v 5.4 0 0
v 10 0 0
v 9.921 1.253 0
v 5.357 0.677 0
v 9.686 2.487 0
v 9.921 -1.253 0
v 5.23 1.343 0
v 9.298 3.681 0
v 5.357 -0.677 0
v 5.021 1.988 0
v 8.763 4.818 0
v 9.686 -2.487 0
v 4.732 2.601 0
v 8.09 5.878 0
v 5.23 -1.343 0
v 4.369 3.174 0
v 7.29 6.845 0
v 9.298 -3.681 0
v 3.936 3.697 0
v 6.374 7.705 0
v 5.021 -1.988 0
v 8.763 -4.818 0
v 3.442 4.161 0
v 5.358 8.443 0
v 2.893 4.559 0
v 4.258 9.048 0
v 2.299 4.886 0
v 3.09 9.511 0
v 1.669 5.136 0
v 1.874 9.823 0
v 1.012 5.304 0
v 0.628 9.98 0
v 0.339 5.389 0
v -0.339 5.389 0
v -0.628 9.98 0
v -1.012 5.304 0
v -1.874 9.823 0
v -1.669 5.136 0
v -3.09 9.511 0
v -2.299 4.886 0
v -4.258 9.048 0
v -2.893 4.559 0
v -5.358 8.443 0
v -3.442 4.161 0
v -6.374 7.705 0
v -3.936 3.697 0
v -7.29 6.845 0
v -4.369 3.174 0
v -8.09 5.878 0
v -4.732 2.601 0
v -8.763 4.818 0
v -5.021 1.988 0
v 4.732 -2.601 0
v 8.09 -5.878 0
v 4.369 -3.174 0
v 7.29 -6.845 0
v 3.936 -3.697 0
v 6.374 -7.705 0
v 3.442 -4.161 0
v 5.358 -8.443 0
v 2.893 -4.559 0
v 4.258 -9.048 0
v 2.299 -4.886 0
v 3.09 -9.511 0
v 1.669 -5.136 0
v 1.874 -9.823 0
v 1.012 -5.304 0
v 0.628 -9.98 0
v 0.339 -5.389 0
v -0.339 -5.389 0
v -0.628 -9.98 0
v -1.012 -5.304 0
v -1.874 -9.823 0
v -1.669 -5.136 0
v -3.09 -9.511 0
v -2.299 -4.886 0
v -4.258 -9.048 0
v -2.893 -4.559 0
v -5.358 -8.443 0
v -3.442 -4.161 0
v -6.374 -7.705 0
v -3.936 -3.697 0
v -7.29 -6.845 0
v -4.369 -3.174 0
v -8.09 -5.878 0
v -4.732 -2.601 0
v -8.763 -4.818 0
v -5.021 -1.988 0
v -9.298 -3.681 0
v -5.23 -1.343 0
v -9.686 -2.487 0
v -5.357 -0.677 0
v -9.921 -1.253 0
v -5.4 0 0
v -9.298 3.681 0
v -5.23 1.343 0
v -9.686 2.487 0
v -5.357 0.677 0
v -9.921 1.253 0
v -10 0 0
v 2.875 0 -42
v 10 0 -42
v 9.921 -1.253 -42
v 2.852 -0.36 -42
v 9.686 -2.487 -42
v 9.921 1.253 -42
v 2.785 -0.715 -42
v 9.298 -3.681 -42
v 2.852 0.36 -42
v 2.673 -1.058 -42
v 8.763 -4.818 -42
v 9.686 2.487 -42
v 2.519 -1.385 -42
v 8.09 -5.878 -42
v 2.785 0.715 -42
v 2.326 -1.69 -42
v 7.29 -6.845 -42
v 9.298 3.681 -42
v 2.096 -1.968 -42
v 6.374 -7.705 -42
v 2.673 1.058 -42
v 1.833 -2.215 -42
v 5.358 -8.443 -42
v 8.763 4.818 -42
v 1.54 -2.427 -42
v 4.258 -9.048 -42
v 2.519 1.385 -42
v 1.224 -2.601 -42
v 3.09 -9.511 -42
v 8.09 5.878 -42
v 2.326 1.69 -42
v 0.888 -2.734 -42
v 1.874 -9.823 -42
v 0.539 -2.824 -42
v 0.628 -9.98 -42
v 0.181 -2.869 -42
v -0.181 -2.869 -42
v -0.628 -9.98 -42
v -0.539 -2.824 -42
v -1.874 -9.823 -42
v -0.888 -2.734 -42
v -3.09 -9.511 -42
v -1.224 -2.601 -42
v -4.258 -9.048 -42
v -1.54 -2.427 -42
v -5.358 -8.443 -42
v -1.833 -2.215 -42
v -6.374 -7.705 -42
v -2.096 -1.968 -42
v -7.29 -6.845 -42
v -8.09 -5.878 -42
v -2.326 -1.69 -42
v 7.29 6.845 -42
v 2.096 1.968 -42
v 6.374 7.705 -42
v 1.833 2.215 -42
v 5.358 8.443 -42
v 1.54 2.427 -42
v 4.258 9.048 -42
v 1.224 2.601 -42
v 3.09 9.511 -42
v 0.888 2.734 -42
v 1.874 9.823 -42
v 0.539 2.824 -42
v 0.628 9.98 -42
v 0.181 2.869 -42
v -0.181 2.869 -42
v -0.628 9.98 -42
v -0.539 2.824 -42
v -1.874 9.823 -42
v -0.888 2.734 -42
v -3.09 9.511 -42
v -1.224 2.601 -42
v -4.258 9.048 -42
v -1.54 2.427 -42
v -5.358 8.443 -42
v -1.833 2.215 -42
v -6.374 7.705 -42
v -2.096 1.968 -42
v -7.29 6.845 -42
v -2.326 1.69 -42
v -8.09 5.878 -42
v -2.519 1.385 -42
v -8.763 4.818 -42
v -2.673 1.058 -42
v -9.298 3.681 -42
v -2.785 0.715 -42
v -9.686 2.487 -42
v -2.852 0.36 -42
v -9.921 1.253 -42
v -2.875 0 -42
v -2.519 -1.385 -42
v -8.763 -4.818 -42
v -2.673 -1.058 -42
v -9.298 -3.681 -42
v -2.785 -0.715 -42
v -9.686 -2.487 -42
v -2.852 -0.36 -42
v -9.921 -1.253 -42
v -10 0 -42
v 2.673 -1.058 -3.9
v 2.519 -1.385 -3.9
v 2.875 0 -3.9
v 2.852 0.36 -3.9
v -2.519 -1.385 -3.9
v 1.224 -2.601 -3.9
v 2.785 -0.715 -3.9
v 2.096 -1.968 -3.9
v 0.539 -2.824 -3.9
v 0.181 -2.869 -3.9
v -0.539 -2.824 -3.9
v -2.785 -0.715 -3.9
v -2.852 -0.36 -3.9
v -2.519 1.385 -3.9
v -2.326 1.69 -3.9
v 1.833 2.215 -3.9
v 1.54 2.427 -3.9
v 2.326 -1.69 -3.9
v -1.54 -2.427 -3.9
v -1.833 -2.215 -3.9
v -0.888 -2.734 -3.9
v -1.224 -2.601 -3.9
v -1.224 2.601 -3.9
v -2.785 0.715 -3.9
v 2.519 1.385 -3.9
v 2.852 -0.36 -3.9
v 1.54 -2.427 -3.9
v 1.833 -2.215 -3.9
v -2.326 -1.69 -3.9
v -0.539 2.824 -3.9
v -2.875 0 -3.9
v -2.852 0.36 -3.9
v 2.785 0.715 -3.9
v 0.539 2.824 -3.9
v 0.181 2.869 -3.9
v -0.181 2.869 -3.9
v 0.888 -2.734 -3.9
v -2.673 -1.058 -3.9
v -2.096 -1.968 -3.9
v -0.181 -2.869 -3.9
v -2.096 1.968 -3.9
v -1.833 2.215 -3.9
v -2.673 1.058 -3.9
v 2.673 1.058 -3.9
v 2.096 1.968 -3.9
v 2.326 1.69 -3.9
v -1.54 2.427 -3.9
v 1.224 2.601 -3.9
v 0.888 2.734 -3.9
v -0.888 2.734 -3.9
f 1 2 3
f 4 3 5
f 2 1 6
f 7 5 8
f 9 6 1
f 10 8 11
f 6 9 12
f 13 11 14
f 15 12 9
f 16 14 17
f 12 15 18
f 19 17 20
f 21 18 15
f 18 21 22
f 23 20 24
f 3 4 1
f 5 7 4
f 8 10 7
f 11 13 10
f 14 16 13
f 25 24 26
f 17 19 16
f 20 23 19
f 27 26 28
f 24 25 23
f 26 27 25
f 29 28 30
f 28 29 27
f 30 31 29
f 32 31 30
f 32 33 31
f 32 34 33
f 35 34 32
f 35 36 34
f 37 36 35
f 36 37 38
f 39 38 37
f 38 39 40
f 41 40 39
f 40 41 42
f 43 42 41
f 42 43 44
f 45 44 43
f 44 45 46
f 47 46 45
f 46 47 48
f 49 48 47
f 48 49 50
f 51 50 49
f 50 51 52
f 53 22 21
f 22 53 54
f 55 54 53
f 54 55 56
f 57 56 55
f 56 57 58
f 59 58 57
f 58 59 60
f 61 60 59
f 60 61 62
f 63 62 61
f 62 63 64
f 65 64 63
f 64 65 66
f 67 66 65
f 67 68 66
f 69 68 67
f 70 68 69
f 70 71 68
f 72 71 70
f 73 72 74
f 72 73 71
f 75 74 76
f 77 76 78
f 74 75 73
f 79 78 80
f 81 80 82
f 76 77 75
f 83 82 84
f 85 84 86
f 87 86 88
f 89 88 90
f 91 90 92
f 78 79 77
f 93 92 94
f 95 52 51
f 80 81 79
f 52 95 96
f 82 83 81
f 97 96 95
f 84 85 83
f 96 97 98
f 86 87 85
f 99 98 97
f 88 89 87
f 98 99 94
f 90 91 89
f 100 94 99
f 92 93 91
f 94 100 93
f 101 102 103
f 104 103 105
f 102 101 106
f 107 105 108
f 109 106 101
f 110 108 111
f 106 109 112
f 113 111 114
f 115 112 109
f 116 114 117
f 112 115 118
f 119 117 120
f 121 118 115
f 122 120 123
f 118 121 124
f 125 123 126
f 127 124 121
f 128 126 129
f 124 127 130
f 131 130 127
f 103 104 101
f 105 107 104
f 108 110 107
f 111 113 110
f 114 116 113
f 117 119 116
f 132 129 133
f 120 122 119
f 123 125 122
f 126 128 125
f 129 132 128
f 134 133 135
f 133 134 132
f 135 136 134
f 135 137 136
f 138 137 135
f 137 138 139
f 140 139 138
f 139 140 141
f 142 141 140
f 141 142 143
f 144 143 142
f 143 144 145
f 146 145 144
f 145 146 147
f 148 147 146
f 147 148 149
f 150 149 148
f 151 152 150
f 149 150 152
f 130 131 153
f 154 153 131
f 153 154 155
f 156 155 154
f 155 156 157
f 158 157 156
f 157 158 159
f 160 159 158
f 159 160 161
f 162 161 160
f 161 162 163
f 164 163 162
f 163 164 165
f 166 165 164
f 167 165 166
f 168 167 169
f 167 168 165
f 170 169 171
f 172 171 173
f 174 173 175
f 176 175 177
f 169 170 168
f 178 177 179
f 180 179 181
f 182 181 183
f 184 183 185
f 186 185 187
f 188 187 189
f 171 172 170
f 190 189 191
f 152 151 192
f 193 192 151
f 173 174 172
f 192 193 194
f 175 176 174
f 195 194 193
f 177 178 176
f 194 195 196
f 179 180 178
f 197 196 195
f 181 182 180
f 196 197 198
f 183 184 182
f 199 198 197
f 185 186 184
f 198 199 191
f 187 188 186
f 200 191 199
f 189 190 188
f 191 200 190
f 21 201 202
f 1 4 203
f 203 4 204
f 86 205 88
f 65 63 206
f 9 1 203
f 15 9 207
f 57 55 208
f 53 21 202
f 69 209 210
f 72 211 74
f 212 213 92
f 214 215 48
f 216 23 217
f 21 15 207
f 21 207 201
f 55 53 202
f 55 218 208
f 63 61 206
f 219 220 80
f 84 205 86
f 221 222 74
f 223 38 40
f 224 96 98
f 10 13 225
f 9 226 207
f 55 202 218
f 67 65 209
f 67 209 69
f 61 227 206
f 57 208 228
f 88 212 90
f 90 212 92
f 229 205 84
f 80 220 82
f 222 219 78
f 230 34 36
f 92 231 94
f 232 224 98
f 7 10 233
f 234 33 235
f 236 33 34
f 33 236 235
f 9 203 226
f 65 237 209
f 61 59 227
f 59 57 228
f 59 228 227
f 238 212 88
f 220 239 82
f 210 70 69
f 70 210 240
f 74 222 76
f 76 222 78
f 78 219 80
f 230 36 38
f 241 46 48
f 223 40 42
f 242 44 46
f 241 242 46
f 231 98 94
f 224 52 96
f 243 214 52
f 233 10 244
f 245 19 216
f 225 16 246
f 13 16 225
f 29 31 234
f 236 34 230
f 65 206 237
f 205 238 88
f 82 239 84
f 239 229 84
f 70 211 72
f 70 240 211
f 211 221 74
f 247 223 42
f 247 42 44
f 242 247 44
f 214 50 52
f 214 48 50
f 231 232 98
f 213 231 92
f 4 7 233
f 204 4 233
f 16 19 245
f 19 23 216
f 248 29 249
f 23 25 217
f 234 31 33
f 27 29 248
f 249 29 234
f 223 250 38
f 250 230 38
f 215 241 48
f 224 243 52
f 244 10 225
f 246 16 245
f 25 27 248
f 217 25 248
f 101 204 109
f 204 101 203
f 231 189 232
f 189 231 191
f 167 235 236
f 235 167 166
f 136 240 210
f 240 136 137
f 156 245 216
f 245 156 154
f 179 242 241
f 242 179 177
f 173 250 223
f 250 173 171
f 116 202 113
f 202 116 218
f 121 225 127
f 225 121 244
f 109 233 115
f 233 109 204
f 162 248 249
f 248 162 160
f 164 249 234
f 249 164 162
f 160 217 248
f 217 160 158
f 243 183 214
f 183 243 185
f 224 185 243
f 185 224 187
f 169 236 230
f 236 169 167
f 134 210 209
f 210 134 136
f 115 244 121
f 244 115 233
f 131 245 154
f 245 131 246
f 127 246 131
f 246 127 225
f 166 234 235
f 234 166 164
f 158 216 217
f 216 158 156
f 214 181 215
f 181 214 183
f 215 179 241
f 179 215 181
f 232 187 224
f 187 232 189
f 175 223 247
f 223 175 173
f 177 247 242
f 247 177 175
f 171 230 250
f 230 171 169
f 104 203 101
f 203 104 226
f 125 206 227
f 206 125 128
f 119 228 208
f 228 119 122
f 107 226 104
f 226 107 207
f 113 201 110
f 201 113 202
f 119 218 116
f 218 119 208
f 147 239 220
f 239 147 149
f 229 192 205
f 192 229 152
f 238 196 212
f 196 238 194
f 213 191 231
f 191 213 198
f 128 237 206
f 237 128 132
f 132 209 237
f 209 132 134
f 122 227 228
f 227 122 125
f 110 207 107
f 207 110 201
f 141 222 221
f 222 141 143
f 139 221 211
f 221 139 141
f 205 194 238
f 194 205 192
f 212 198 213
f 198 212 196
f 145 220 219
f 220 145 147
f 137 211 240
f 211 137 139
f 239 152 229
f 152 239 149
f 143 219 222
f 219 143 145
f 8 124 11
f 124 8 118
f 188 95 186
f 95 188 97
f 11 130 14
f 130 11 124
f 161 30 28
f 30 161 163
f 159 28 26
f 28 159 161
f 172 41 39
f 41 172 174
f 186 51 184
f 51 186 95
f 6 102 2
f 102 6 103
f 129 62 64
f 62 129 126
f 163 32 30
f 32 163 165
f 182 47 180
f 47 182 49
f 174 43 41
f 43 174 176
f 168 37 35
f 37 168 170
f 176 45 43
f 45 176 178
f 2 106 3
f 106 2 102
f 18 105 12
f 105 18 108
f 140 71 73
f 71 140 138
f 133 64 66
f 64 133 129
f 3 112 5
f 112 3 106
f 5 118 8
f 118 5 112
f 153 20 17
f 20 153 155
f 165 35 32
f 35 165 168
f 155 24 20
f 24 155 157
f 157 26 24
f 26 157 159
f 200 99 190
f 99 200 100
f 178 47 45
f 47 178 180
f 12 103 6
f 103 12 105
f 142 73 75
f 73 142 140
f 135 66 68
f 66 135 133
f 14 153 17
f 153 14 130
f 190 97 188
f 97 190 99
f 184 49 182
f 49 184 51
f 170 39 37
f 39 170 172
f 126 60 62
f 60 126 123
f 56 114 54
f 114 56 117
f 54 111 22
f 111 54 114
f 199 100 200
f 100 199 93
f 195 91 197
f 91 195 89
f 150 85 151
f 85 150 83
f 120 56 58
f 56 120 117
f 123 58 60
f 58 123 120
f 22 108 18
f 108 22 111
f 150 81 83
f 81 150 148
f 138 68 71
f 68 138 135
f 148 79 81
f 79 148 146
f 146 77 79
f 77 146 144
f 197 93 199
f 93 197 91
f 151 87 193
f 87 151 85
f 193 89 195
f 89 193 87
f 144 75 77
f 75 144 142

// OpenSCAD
$fn = 50;


difference() {
	union() {
		translate(v = [0, 0, -42.0000000000]) {
			cylinder(h = 42, r = 10.0000000000);
		}
		cylinder(h = 0, r = 16.0000000000);
	}
	union() {
		translate(v = [0, 0, 0]) {
			rotate(a = [0, 0, 0]) {
				difference() {
					union() {
						#translate(v = [0, 0, -42.0000000000]) {
							cylinder(h = 42, r = 2.6000000000);
						}
						#translate(v = [0, 0, -3.9000000000]) {
							cylinder(h = 3.9000000000, r = 10.0000000000, r1 = 2.8750000000, r2 = 5.4000000000);
						}
						#translate(v = [0, 0, -42.0000000000]) {
							cylinder(h = 42, r = 2.8750000000);
						}
						#translate(v = [0, 0, -42.0000000000]) {
							cylinder(h = 42, r = 2.6000000000);
						}
					}
					union();
				}
			}
		}
	}
}
